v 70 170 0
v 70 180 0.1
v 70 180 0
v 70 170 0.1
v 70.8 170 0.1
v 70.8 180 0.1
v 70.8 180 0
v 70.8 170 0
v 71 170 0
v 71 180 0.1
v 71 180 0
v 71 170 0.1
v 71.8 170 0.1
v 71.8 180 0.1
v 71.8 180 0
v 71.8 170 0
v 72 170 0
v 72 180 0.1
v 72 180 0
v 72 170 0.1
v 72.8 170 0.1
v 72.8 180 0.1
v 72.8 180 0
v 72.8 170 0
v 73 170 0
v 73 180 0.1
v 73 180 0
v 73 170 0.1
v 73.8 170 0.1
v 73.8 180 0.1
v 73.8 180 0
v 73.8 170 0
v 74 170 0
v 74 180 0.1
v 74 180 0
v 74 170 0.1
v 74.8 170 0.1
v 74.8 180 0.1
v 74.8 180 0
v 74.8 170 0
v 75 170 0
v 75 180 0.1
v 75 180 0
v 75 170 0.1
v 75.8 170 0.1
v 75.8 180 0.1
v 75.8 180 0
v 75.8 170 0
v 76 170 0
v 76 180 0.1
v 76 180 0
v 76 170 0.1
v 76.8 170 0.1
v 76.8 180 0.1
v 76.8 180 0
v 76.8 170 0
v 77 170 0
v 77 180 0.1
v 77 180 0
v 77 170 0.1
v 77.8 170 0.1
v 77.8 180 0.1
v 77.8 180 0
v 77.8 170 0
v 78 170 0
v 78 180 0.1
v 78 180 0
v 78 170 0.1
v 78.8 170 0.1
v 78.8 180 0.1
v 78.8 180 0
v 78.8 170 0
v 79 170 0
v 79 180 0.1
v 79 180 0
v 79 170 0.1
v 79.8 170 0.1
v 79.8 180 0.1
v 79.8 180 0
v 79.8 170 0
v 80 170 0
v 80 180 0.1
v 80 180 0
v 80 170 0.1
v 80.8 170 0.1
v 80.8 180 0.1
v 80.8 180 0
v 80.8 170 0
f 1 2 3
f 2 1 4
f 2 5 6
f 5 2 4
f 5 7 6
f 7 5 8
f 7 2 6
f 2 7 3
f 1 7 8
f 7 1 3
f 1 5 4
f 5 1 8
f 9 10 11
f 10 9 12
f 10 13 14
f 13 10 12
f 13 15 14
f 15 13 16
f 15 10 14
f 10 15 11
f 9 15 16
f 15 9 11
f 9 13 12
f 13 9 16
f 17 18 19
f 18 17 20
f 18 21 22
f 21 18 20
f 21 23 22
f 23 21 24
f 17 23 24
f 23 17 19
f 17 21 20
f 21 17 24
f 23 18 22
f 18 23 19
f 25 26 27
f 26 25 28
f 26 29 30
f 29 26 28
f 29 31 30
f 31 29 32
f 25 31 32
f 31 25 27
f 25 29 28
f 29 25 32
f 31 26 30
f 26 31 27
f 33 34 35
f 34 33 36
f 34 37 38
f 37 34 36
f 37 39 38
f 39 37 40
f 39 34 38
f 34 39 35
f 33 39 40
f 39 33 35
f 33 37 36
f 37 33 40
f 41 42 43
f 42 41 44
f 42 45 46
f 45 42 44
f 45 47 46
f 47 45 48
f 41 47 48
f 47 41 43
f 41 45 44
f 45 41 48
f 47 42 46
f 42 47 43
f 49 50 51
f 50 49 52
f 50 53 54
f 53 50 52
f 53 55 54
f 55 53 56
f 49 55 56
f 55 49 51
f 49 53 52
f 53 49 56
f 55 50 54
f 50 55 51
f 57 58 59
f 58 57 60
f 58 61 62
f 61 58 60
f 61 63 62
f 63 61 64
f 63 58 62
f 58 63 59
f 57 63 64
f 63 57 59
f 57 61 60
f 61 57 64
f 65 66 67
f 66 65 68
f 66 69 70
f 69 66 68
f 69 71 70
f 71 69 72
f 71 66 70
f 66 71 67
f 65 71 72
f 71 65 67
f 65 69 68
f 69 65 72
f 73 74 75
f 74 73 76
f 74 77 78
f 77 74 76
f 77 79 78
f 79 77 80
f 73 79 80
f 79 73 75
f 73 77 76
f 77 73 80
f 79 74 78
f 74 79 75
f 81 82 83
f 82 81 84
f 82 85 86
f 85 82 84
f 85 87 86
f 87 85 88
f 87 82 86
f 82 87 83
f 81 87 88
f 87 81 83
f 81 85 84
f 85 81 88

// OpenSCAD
translate([10+60,10+160,0])
        for (i = [0 : 10]){
            translate([i,0,0])
                cube(size = [0.8,10,0.1]);
    }
